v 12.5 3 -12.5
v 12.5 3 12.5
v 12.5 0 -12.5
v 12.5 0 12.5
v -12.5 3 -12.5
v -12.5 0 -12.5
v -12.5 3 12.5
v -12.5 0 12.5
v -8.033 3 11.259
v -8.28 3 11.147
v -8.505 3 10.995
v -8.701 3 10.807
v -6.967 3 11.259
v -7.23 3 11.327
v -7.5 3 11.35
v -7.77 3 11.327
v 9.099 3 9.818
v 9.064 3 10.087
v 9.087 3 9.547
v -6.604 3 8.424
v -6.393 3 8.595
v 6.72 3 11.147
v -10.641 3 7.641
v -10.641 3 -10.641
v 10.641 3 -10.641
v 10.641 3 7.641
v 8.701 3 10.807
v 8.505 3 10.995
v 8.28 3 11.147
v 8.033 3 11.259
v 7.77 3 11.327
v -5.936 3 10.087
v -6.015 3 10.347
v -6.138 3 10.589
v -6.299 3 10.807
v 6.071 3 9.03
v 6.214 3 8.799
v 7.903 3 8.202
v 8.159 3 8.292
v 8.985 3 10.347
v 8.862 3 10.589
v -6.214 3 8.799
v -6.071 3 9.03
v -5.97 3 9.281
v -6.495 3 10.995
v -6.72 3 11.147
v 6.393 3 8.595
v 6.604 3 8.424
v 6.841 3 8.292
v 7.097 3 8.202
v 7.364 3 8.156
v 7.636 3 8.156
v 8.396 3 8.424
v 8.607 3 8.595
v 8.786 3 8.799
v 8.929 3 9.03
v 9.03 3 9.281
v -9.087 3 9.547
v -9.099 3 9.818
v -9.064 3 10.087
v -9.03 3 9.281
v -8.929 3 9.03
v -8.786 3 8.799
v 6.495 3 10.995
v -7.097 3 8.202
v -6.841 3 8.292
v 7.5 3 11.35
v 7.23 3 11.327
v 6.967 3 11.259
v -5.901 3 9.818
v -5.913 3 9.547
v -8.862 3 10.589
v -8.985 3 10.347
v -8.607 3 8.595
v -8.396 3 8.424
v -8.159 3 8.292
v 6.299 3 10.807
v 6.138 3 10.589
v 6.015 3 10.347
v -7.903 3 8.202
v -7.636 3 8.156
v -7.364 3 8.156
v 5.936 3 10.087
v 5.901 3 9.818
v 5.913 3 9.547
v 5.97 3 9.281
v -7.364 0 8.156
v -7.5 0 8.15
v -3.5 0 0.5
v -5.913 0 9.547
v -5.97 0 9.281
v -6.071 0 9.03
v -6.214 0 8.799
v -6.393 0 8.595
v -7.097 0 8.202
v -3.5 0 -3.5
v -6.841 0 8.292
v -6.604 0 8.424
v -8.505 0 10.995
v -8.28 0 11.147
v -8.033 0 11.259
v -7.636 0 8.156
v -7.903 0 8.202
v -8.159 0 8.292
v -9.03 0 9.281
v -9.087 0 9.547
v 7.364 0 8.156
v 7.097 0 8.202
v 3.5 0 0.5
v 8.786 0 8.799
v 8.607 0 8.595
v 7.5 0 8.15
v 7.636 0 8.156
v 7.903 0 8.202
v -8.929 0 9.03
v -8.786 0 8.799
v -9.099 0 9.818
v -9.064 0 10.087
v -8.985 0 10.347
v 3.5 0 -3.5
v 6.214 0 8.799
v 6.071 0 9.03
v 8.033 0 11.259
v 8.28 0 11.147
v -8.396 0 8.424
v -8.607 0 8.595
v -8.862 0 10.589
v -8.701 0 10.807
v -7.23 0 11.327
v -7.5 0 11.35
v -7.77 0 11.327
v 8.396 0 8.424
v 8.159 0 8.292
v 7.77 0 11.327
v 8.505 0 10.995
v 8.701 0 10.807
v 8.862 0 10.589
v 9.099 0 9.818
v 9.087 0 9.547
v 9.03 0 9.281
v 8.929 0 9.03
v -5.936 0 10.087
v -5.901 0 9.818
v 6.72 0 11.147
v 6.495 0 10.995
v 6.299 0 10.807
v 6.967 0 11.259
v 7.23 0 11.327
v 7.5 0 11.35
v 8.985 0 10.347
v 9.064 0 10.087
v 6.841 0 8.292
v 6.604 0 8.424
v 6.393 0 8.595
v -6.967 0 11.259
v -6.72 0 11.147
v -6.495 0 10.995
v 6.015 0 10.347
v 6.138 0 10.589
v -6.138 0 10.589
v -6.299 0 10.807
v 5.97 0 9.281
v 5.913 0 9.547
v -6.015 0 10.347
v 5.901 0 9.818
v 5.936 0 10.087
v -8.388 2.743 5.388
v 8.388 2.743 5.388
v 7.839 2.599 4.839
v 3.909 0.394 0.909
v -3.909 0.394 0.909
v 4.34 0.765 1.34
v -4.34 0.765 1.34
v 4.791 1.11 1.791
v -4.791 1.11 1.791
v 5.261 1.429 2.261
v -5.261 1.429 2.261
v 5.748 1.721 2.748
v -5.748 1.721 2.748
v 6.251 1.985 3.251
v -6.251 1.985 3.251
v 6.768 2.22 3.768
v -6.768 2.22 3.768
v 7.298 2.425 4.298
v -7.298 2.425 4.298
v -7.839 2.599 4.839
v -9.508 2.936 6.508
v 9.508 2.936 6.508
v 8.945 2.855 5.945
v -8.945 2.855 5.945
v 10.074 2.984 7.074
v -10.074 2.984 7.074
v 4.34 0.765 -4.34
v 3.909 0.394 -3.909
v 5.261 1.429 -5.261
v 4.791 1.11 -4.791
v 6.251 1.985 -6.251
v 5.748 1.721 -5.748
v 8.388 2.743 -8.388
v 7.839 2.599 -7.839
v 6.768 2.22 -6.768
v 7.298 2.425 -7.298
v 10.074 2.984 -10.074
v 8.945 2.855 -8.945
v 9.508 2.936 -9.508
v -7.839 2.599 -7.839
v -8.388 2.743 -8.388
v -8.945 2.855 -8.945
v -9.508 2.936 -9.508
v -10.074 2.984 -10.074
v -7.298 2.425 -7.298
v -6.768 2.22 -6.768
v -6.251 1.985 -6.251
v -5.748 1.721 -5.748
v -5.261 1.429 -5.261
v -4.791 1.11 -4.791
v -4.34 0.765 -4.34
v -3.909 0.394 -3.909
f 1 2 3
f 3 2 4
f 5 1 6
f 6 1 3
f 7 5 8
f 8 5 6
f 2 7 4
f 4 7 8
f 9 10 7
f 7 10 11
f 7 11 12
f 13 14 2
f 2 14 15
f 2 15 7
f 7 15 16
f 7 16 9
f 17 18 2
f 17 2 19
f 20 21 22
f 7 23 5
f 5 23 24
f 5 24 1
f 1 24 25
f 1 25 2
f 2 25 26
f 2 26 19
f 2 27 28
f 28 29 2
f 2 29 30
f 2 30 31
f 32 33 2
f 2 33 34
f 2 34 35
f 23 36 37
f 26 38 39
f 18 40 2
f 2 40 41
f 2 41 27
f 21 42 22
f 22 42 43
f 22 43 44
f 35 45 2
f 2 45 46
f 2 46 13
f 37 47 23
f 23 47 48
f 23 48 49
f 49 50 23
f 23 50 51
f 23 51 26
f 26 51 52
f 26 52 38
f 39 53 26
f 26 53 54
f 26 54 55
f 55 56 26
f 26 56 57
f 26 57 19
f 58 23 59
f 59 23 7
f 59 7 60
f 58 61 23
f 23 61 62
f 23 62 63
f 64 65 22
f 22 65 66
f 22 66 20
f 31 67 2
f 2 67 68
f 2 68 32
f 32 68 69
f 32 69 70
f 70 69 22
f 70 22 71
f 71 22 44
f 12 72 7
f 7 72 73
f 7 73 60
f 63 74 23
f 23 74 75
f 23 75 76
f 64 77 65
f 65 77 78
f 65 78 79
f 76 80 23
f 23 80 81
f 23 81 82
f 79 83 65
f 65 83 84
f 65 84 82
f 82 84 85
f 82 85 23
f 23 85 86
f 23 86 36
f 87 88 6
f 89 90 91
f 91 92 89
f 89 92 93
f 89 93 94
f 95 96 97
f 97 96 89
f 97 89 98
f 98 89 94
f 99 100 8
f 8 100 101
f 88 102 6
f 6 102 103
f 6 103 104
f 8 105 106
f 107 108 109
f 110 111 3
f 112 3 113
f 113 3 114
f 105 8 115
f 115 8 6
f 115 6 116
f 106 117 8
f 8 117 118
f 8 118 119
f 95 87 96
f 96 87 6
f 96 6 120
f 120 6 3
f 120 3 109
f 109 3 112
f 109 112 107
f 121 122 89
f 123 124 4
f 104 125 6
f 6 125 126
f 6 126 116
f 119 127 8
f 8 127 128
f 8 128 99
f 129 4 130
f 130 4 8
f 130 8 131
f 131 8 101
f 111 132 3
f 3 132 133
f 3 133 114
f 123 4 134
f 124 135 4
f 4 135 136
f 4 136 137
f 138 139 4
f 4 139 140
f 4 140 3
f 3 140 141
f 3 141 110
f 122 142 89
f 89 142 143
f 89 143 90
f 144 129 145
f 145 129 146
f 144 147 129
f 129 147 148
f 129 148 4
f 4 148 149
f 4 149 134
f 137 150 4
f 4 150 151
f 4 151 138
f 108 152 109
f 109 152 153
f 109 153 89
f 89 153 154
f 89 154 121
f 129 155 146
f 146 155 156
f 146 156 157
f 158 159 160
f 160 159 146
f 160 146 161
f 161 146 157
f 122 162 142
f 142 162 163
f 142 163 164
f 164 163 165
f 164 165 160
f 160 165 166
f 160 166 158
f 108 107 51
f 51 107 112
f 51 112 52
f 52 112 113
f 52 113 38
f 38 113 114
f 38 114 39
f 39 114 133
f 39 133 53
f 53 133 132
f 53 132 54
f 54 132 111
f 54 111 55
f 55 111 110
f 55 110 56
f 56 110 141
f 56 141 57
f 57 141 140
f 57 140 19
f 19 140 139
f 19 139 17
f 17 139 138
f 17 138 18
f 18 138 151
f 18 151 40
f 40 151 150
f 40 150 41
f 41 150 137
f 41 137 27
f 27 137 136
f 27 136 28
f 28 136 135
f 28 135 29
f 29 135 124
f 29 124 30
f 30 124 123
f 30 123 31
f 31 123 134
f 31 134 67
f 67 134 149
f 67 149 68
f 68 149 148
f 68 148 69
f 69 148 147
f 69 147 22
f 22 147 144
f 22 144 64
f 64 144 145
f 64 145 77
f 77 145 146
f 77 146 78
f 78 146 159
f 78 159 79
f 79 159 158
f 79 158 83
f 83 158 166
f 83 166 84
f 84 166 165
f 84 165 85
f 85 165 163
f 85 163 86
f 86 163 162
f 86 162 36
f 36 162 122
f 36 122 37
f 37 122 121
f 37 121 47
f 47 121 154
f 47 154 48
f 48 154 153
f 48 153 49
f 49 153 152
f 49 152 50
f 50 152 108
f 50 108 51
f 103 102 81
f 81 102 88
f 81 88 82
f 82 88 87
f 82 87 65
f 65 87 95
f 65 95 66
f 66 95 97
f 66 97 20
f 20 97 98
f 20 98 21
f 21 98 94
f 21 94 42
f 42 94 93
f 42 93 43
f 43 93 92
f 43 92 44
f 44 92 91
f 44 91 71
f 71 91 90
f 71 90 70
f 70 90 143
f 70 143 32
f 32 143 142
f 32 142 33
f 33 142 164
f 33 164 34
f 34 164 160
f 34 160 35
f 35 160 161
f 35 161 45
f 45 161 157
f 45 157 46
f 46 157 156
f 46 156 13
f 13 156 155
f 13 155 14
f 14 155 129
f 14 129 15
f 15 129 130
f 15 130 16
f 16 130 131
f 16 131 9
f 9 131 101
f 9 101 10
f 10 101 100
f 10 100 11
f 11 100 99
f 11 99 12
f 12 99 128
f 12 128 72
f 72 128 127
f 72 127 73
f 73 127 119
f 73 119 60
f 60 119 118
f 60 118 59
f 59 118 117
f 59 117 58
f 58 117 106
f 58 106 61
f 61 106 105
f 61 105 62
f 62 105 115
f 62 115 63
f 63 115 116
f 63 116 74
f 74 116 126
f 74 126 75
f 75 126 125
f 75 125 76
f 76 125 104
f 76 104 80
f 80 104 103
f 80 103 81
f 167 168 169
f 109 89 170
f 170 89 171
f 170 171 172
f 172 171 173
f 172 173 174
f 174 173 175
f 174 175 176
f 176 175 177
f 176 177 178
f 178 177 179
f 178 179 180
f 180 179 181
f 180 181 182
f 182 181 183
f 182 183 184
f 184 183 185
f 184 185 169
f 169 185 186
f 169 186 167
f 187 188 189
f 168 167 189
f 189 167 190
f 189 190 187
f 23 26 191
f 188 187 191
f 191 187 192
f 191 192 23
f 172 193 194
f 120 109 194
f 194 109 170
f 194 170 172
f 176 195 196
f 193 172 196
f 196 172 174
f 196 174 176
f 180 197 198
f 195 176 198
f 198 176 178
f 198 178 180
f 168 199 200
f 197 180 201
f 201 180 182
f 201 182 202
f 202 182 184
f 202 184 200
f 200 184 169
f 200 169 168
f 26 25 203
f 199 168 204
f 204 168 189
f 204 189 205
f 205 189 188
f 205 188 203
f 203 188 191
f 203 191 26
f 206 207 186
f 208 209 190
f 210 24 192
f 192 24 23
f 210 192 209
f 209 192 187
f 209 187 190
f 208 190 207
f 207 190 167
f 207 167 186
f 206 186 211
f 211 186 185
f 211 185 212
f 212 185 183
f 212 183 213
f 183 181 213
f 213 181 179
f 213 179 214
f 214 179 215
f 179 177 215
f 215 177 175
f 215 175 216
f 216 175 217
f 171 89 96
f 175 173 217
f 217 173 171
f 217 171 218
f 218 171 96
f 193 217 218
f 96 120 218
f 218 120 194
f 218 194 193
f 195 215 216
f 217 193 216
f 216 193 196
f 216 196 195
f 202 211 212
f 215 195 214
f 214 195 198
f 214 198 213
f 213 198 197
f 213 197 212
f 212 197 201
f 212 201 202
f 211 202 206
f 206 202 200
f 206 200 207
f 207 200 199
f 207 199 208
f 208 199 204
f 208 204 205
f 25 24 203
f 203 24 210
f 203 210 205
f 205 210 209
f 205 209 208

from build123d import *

# Parameters (mm, degrees)
SKETCH1_W                = 25
SKETCH1_H                = 25
BOSS_EXTRUDE1_DEPTH      = 3
M3_CLEARANCE_HOLE1_D     = 3.2
M3_CLEARANCE_HOLE1_DEPTH = 5
M3_CLEARANCE_HOLE1_TIP   = 0.96137699
SKETCH4_W                = 7
SKETCH4_H                = 4
CUT_EXTRUDE1_DEPTH       = 3
FILLET2_R                = 10


with BuildPart() as part:
    # Sketch1 → Boss-Extrude1 (new body)
    with BuildSketch(Plane(origin=(0, 0, 0), x_dir=(1, 0, 0), z_dir=(0, 1, 0))):
        Rectangle(SKETCH1_W, SKETCH1_H)
    extrude(amount=BOSS_EXTRUDE1_DEPTH)

    # M3 Clearance Hole1
    with Locations(Plane(origin=(-7.5, 3, 9.75), x_dir=(0, 0, 1), z_dir=(0, 1, 0))):
        with Locations((0, 0), (0, 15)):
            Hole(M3_CLEARANCE_HOLE1_D / 2, depth=M3_CLEARANCE_HOLE1_DEPTH)
            with Locations((0, 0, -(M3_CLEARANCE_HOLE1_DEPTH + M3_CLEARANCE_HOLE1_TIP / 2))):  # 118° drill point
                Cone(0, M3_CLEARANCE_HOLE1_D / 2, M3_CLEARANCE_HOLE1_TIP, mode=Mode.SUBTRACT)

    # Sketch4 → Cut-Extrude1 (cut)
    with BuildSketch(Plane(origin=(0, 3, 0), x_dir=(1, 0, 0), z_dir=(0, 1, 0))):
        with Locations((0, 1.5)):
            Rectangle(SKETCH4_W, SKETCH4_H)
    extrude(amount=-CUT_EXTRUDE1_DEPTH, mode=Mode.SUBTRACT)

    # Fillet2
    # the kernel refuses this fillet: 10 mm, written as the material it takes off along each edge
    with BuildSketch(Plane(origin=(3.5, 3, 0.5), x_dir=(1, 0, 0), z_dir=(0, 0, -1)), Plane(origin=(-3.5, 3, -3.5), x_dir=(-1, 0, 0), z_dir=(0, 0, 1))) as fillet2_piece_1:
        with BuildLine():
            CenterArc((7.141428429, 10), FILLET2_R, 224.427004001, 45.572995999)
            Line((0, 3), (0, 0))
            Line((0, 0), (7.141428429, 0))
        make_face()
    extrude(amount=4, mode=Mode.SUBTRACT)
    with BuildSketch(Plane(origin=(3.5, 3, -3.5), x_dir=(0, 0, -1), z_dir=(-1, 0, 0)), Plane(origin=(-3.5, 3, 0.5), x_dir=(0, 0, 1), z_dir=(1, 0, 0))) as fillet2_piece_2:
        with BuildLine():
            CenterArc((7.141428429, 10), FILLET2_R, 224.427004001, 45.572995999)
            Line((0, 3), (0, 0))
            Line((0, 0), (7.141428429, 0))
        make_face()
    extrude(amount=7, mode=Mode.SUBTRACT)
    with BuildSketch(Plane(origin=(-3.5, 3, 0.5), x_dir=(0, 0, 1), z_dir=(1, 0, 0))) as fillet2_piece_3a_section:
        with BuildLine():
            CenterArc((7.141428429, 10), FILLET2_R, 224.427004001, 45.572995999)
            Line((0, 3), (0, 0))
            Line((0, 0), (7.141428429, 0))
        make_face()
    fillet2_piece_3a = extrude(amount=24.853571071, mode=Mode.PRIVATE)
    fillet2_piece_3a = split(fillet2_piece_3a, bisect_by=Plane(origin=(12.5, 3, 0.5), z_dir=(-1, 0, 0)), keep=Keep.TOP, mode=Mode.PRIVATE)
    fillet2_piece_3a = split(fillet2_piece_3a, bisect_by=Plane(origin=(3.5, 3, 0.5), z_dir=(1, 0, 0)), keep=Keep.TOP, mode=Mode.PRIVATE)
    with BuildSketch(Plane(origin=(3.5, 3, 18.353571071), x_dir=(1, 0, 0), z_dir=(0, 0, -1))) as fillet2_piece_3b_section:
        with BuildLine():
            CenterArc((7.141428429, 10), FILLET2_R, 224.427004001, 45.572995999)
            Line((0, 3), (0, 0))
            Line((0, 0), (7.141428429, 0))
        make_face()
    fillet2_piece_3b = extrude(amount=21.853571071, mode=Mode.PRIVATE)
    fillet2_piece_3b = split(fillet2_piece_3b, bisect_by=Plane(origin=(3.5, 3, 12.5), z_dir=(0, 0, -1)), keep=Keep.TOP, mode=Mode.PRIVATE)
    fillet2_piece_3b = fillet2_piece_3b - Plane(origin=(7.5, 3, 9.75), x_dir=(0, 0, -1), z_dir=(0, -1, 0)) * Cylinder(1.6, 73, mode=Mode.PRIVATE)
    fillet2_piece_3b = split(fillet2_piece_3b, bisect_by=Plane(origin=(3.5, 3, 0.5), z_dir=(0, 0, 1)), keep=Keep.TOP, mode=Mode.PRIVATE)
    fillet2_piece_3 = fillet2_piece_3a & fillet2_piece_3b
    add(fillet2_piece_3, mode=Mode.SUBTRACT)
    with BuildSketch(Plane(origin=(3.5, 3, 0.5), x_dir=(1, 0, 0), z_dir=(0, 0, -1))) as fillet2_piece_4a_section:
        with BuildLine():
            CenterArc((7.141428429, 10), FILLET2_R, 224.427004001, 45.572995999)
            Line((0, 3), (0, 0))
            Line((0, 0), (7.141428429, 0))
        make_face()
    fillet2_piece_4a = extrude(amount=21.853571071, mode=Mode.PRIVATE)
    fillet2_piece_4a = split(fillet2_piece_4a, bisect_by=Plane(origin=(3.5, 3, -12.5), z_dir=(0, 0, 1)), keep=Keep.TOP, mode=Mode.PRIVATE)
    fillet2_piece_4a = split(fillet2_piece_4a, bisect_by=Plane(origin=(3.5, 3, -3.5), z_dir=(0, 0, -1)), keep=Keep.TOP, mode=Mode.PRIVATE)
    with BuildSketch(Plane(origin=(21.353571071, 3, -3.5), x_dir=(0, 0, -1), z_dir=(-1, 0, 0))) as fillet2_piece_4b_section:
        with BuildLine():
            CenterArc((7.141428429, 10), FILLET2_R, 224.427004001, 45.572995999)
            Line((0, 3), (0, 0))
            Line((0, 0), (7.141428429, 0))
        make_face()
    fillet2_piece_4b = extrude(amount=24.853571071, mode=Mode.PRIVATE)
    fillet2_piece_4b = split(fillet2_piece_4b, bisect_by=Plane(origin=(12.5, 3, -3.5), z_dir=(-1, 0, 0)), keep=Keep.TOP, mode=Mode.PRIVATE)
    fillet2_piece_4b = split(fillet2_piece_4b, bisect_by=Plane(origin=(3.5, 3, -3.5), z_dir=(1, 0, 0)), keep=Keep.TOP, mode=Mode.PRIVATE)
    fillet2_piece_4 = fillet2_piece_4a & fillet2_piece_4b
    add(fillet2_piece_4, mode=Mode.SUBTRACT)
    with BuildSketch(Plane(origin=(3.5, 3, -3.5), x_dir=(0, 0, -1), z_dir=(-1, 0, 0))) as fillet2_piece_5a_section:
        with BuildLine():
            CenterArc((7.141428429, 10), FILLET2_R, 224.427004001, 45.572995999)
            Line((0, 3), (0, 0))
            Line((0, 0), (7.141428429, 0))
        make_face()
    fillet2_piece_5a = extrude(amount=24.853571071, mode=Mode.PRIVATE)
    fillet2_piece_5a = split(fillet2_piece_5a, bisect_by=Plane(origin=(-12.5, 3, -3.5), z_dir=(1, 0, 0)), keep=Keep.TOP, mode=Mode.PRIVATE)
    fillet2_piece_5a = split(fillet2_piece_5a, bisect_by=Plane(origin=(-3.5, 3, -3.5), z_dir=(-1, 0, 0)), keep=Keep.TOP, mode=Mode.PRIVATE)
    with BuildSketch(Plane(origin=(-3.5, 3, -21.353571071), x_dir=(-1, 0, 0), z_dir=(0, 0, 1))) as fillet2_piece_5b_section:
        with BuildLine():
            CenterArc((7.141428429, 10), FILLET2_R, 224.427004001, 45.572995999)
            Line((0, 3), (0, 0))
            Line((0, 0), (7.141428429, 0))
        make_face()
    fillet2_piece_5b = extrude(amount=21.853571071, mode=Mode.PRIVATE)
    fillet2_piece_5b = split(fillet2_piece_5b, bisect_by=Plane(origin=(-3.5, 3, -12.5), z_dir=(0, 0, 1)), keep=Keep.TOP, mode=Mode.PRIVATE)
    fillet2_piece_5b = split(fillet2_piece_5b, bisect_by=Plane(origin=(-3.5, 3, -3.5), z_dir=(0, 0, -1)), keep=Keep.TOP, mode=Mode.PRIVATE)
    fillet2_piece_5 = fillet2_piece_5a & fillet2_piece_5b
    add(fillet2_piece_5, mode=Mode.SUBTRACT)
    with BuildSketch(Plane(origin=(-21.353571071, 3, 0.5), x_dir=(0, 0, 1), z_dir=(1, 0, 0))) as fillet2_piece_6a_section:
        with BuildLine():
            CenterArc((7.141428429, 10), FILLET2_R, 224.427004001, 45.572995999)
            Line((0, 3), (0, 0))
            Line((0, 0), (7.141428429, 0))
        make_face()
    fillet2_piece_6a = extrude(amount=24.853571071, mode=Mode.PRIVATE)
    fillet2_piece_6a = split(fillet2_piece_6a, bisect_by=Plane(origin=(-12.5, 3, 0.5), z_dir=(1, 0, 0)), keep=Keep.TOP, mode=Mode.PRIVATE)
    fillet2_piece_6a = split(fillet2_piece_6a, bisect_by=Plane(origin=(-3.5, 3, 0.5), z_dir=(-1, 0, 0)), keep=Keep.TOP, mode=Mode.PRIVATE)
    with BuildSketch(Plane(origin=(-3.5, 3, -3.5), x_dir=(-1, 0, 0), z_dir=(0, 0, 1))) as fillet2_piece_6b_section:
        with BuildLine():
            CenterArc((7.141428429, 10), FILLET2_R, 224.427004001, 45.572995999)
            Line((0, 3), (0, 0))
            Line((0, 0), (7.141428429, 0))
        make_face()
    fillet2_piece_6b = extrude(amount=21.853571071, mode=Mode.PRIVATE)
    fillet2_piece_6b = split(fillet2_piece_6b, bisect_by=Plane(origin=(-3.5, 3, 12.5), z_dir=(0, 0, -1)), keep=Keep.TOP, mode=Mode.PRIVATE)
    fillet2_piece_6b = fillet2_piece_6b - Plane(origin=(-7.5, 3, 9.75), x_dir=(0, 0, -1), z_dir=(0, -1, 0)) * Cylinder(1.6, 73, mode=Mode.PRIVATE)
    fillet2_piece_6b = split(fillet2_piece_6b, bisect_by=Plane(origin=(-3.5, 3, 0.5), z_dir=(0, 0, 1)), keep=Keep.TOP, mode=Mode.PRIVATE)
    fillet2_piece_6 = fillet2_piece_6a & fillet2_piece_6b
    add(fillet2_piece_6, mode=Mode.SUBTRACT)


solid = part.part
